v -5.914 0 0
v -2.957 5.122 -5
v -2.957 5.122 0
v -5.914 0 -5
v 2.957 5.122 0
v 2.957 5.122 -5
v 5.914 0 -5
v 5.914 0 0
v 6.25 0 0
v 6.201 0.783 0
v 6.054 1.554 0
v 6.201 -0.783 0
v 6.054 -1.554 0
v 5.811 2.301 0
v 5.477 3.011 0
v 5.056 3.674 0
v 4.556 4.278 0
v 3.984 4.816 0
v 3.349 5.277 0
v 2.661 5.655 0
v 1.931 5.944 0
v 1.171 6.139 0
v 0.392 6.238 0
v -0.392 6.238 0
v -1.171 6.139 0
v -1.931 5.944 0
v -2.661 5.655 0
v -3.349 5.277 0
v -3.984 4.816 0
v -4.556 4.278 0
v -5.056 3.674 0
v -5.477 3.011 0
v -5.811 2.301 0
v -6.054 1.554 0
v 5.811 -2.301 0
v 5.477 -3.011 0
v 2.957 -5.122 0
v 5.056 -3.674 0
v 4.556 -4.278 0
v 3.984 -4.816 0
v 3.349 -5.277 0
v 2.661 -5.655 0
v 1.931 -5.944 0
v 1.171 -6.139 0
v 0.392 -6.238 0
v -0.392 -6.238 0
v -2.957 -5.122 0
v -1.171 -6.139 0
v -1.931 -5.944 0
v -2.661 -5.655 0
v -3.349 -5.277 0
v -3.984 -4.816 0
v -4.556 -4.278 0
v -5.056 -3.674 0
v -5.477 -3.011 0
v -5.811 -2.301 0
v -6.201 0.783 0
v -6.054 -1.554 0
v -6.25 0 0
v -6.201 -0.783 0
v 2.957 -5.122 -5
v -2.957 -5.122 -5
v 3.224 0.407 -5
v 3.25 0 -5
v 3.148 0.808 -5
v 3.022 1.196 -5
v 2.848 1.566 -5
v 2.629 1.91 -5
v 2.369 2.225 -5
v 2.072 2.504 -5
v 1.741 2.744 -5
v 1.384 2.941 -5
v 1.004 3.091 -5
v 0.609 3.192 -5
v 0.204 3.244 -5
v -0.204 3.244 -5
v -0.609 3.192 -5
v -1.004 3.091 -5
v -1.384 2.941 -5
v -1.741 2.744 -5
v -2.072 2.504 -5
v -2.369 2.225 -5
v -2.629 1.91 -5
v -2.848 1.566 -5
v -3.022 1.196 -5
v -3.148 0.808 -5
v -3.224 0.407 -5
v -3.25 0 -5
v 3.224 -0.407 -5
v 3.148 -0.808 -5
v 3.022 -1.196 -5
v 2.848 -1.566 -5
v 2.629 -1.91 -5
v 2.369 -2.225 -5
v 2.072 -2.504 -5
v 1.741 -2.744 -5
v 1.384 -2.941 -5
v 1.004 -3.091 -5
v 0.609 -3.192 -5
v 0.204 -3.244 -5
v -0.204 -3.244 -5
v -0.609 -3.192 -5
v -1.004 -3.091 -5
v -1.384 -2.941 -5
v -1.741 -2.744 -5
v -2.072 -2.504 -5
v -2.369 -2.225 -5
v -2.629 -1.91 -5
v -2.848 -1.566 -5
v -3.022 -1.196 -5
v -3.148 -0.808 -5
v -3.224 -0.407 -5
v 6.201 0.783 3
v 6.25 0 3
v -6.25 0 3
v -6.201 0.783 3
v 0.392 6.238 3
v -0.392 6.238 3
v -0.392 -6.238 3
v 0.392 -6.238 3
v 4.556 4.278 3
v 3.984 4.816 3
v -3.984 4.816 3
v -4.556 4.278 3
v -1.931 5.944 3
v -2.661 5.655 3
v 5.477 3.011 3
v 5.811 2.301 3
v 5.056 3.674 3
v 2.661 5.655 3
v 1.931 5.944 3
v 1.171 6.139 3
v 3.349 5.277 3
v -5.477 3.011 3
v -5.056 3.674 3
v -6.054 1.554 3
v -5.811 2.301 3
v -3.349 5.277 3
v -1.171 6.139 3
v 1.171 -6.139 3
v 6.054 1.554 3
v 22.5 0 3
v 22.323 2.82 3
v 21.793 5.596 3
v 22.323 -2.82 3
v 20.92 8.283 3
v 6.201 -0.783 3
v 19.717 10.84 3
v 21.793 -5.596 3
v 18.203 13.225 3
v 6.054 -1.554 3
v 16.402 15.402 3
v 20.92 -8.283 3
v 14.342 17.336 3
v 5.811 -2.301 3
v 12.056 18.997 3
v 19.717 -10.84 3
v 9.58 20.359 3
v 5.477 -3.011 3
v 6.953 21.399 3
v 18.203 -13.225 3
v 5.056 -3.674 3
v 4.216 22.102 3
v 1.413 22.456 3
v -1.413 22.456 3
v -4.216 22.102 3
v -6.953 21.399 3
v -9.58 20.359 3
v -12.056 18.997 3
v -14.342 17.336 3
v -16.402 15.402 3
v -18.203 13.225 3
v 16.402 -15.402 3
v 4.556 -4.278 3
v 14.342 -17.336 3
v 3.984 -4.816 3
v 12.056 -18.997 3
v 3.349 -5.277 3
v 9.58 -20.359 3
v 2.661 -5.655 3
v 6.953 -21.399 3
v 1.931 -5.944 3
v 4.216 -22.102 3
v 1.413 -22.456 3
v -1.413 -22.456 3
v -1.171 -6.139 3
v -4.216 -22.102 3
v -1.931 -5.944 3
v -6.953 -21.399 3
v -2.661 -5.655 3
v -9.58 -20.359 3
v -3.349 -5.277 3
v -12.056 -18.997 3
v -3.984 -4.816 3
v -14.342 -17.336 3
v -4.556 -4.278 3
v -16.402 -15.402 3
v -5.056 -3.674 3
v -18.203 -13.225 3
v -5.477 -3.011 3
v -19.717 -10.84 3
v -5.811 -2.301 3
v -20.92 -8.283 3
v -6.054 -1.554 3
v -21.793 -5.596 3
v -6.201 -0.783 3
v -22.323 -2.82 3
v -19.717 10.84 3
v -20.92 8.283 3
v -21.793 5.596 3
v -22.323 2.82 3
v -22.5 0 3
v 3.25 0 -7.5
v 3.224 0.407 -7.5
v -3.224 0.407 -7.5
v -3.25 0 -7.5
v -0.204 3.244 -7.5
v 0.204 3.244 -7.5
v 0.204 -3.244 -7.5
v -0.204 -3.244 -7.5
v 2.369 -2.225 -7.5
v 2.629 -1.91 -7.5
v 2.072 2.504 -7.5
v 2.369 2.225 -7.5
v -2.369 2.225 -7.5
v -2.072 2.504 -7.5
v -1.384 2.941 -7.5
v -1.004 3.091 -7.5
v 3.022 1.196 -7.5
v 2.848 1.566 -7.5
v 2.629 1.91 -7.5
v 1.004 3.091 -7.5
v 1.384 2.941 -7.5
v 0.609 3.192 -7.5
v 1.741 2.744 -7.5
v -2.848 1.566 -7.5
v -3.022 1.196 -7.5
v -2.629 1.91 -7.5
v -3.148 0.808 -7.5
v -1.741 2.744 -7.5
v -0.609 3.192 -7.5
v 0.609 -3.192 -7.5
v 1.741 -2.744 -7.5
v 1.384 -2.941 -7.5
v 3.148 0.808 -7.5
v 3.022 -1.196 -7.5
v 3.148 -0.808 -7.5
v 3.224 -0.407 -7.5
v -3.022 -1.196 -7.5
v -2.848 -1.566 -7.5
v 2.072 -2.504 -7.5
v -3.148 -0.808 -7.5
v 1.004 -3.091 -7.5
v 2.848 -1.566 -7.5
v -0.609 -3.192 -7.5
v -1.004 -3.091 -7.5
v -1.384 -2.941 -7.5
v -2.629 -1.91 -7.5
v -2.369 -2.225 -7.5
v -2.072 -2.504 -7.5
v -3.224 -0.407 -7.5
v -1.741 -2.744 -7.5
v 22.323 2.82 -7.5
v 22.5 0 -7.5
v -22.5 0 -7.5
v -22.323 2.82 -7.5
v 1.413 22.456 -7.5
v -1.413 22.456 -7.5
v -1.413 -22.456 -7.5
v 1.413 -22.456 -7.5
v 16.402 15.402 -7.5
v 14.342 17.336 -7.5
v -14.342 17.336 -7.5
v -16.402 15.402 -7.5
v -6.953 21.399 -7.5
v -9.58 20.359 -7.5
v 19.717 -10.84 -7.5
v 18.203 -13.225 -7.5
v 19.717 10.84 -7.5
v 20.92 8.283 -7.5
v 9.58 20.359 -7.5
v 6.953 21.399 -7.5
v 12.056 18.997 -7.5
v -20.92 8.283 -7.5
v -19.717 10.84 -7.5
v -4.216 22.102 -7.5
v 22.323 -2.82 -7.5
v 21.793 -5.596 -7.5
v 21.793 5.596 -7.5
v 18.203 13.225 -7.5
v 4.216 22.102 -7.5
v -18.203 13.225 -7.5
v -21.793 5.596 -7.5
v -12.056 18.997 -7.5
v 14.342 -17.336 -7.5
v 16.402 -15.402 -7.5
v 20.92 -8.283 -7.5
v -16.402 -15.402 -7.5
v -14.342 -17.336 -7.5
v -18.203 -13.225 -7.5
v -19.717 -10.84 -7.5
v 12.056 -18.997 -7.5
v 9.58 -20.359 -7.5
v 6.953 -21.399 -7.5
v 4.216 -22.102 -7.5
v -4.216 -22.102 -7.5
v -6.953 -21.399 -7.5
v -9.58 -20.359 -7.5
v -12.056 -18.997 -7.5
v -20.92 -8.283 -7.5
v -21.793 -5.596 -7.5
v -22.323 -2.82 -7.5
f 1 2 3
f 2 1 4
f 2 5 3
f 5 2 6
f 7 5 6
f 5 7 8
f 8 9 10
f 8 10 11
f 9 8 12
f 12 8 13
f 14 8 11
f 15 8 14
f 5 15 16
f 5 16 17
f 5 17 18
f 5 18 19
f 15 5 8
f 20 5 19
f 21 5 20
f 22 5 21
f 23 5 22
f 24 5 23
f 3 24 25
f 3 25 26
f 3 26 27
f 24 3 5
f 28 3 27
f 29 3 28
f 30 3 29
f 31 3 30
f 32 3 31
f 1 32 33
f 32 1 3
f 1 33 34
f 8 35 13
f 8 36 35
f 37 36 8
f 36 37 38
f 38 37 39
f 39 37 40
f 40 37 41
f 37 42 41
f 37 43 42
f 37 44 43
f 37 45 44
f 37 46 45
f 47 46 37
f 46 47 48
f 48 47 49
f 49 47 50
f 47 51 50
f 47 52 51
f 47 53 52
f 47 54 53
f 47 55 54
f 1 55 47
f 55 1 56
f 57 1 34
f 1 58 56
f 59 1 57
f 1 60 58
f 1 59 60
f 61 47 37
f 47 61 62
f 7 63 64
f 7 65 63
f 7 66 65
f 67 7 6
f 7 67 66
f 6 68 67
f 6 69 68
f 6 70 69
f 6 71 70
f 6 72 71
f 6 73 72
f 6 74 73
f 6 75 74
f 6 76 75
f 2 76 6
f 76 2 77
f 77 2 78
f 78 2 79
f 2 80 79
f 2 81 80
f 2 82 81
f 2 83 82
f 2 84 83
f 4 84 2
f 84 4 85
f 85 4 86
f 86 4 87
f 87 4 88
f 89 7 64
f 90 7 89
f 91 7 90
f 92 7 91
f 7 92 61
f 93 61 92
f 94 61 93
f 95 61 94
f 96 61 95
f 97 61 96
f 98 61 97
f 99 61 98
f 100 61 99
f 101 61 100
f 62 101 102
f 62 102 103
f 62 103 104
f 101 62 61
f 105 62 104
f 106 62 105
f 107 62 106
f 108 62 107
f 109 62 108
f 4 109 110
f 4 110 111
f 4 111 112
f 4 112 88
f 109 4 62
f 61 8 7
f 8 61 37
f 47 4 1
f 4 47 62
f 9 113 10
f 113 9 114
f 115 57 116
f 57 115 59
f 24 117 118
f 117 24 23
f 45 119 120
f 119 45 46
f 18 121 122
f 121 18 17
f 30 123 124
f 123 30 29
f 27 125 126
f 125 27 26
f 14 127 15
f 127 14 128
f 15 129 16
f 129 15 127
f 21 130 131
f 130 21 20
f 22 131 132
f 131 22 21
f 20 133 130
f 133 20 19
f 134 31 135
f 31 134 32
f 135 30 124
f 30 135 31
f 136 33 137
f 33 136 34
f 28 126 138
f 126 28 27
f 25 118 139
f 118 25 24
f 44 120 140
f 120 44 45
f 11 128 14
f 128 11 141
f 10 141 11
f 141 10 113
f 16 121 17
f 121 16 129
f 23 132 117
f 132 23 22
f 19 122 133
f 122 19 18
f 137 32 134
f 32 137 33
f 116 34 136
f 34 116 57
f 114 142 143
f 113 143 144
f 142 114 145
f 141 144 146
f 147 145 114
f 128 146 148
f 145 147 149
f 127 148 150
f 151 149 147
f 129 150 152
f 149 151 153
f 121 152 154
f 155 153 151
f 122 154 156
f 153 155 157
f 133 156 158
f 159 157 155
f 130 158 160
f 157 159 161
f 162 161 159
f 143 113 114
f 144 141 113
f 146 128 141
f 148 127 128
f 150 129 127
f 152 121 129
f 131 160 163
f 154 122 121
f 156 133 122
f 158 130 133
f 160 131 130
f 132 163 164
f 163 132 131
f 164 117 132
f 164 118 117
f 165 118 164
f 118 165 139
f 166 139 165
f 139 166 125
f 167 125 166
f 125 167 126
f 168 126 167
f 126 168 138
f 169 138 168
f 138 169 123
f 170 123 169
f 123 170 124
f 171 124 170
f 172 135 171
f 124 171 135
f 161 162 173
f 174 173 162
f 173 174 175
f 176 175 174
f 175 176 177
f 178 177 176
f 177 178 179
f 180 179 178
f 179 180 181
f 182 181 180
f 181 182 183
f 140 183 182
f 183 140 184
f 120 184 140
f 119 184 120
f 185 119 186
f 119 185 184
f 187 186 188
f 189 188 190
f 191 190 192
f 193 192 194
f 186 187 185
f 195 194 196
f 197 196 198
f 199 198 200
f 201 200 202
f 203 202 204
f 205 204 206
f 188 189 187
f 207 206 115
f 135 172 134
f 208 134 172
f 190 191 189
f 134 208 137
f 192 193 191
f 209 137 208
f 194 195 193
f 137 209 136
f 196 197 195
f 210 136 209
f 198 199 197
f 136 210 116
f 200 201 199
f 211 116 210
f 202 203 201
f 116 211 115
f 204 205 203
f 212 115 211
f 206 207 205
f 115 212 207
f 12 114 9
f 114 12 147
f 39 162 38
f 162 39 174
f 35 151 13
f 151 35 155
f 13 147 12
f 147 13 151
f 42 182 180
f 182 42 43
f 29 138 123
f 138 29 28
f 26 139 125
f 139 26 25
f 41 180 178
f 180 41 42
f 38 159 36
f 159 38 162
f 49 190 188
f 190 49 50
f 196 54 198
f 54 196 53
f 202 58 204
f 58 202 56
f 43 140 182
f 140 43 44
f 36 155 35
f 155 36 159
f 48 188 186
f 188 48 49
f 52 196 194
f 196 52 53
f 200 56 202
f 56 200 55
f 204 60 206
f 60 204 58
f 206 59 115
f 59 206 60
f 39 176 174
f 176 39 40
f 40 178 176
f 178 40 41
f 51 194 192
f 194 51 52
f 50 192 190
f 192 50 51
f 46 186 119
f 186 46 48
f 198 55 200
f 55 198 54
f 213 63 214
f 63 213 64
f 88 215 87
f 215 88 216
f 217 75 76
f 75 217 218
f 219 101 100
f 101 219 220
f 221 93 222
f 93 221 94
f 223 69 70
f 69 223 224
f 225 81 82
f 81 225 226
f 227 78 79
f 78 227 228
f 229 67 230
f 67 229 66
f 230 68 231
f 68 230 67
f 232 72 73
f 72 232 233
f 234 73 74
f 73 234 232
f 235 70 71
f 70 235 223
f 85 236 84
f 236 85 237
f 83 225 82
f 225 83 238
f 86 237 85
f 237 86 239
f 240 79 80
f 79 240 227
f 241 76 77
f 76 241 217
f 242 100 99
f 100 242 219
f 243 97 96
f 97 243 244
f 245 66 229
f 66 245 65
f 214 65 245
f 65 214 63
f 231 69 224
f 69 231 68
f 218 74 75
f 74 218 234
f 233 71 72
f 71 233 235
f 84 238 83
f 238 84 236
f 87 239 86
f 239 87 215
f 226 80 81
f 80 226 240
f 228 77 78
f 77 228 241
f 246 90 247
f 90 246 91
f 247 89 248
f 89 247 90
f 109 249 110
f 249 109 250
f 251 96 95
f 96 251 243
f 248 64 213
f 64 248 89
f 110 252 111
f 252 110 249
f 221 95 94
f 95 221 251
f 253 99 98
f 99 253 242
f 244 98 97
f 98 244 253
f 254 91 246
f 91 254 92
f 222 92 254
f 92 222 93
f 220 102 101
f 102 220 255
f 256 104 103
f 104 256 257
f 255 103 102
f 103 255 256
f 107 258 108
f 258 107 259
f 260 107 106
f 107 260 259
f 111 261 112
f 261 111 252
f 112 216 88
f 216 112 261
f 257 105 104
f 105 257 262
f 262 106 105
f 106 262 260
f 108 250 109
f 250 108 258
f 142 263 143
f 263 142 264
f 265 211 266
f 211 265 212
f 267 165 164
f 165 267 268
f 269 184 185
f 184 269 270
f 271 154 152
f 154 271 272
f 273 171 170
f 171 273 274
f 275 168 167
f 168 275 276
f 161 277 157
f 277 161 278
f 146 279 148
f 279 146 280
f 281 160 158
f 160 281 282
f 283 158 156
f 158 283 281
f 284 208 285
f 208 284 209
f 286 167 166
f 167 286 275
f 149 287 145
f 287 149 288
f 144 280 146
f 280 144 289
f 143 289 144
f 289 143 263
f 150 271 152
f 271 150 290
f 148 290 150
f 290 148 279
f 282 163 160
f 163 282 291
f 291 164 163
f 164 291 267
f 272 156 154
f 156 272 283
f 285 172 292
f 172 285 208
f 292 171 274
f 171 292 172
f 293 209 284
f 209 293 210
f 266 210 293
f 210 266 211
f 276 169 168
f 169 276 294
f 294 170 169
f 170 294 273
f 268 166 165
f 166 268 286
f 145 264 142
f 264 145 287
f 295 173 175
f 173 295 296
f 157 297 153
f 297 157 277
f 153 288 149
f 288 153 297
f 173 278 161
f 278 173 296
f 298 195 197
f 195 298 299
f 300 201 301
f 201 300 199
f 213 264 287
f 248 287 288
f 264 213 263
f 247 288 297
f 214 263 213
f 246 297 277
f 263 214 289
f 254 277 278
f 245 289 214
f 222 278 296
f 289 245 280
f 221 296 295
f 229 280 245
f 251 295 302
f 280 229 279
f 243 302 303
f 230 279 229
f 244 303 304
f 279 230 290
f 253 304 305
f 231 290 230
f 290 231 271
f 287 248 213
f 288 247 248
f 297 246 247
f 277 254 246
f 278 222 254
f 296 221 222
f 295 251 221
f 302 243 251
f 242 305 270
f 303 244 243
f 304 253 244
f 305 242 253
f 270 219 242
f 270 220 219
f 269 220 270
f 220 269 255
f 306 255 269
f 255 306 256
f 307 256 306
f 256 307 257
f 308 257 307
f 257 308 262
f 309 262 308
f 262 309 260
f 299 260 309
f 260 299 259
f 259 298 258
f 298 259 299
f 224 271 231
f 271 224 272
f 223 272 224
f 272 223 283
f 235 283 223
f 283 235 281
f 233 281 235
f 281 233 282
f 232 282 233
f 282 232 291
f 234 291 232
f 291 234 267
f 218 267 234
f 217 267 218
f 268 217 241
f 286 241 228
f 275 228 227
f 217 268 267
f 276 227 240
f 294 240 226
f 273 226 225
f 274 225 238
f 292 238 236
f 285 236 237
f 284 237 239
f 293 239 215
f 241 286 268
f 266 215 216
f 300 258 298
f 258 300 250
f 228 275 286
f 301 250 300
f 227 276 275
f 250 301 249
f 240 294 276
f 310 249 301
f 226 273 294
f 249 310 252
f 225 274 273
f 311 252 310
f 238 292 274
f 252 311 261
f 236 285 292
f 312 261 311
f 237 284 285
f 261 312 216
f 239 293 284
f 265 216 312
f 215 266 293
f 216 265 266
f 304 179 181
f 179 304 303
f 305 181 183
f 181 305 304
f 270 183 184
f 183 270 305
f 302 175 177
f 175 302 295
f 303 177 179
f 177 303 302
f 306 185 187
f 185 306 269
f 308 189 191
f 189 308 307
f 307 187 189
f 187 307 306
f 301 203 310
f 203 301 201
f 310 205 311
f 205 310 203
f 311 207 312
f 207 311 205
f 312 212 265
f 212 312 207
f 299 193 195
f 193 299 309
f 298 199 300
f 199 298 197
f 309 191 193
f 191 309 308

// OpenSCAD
$fn = 50;


difference() {
	union() {
		translate(v = [0, 0, -7.5000000000]) {
			cylinder(h = 10.5000000000, r = 22.5000000000);
		}
	}
	union() {
		translate(v = [0, 0, 0]) {
			rotate(a = [0, 0, 0]) {
				difference() {
					union() {
						translate(v = [0, 0, -5]) {
							linear_extrude(height = 5) {
								polygon(points = [[5.9142500000, 0.0000000000], [2.9571250000, 5.1218907443], [-2.9571250000, 5.1218907443], [-5.9142500000, 0.0000000000], [-2.9571250000, -5.1218907443], [2.9571250000, -5.1218907443]]);
							}
						}
					}
					union();
				}
			}
		}
		#cylinder(h = 3, r = 6.2500000000);
		#translate(v = [0, 0, -100.0000000000]) {
			cylinder(h = 200, r = 3.2500000000);
		}
	}
}
